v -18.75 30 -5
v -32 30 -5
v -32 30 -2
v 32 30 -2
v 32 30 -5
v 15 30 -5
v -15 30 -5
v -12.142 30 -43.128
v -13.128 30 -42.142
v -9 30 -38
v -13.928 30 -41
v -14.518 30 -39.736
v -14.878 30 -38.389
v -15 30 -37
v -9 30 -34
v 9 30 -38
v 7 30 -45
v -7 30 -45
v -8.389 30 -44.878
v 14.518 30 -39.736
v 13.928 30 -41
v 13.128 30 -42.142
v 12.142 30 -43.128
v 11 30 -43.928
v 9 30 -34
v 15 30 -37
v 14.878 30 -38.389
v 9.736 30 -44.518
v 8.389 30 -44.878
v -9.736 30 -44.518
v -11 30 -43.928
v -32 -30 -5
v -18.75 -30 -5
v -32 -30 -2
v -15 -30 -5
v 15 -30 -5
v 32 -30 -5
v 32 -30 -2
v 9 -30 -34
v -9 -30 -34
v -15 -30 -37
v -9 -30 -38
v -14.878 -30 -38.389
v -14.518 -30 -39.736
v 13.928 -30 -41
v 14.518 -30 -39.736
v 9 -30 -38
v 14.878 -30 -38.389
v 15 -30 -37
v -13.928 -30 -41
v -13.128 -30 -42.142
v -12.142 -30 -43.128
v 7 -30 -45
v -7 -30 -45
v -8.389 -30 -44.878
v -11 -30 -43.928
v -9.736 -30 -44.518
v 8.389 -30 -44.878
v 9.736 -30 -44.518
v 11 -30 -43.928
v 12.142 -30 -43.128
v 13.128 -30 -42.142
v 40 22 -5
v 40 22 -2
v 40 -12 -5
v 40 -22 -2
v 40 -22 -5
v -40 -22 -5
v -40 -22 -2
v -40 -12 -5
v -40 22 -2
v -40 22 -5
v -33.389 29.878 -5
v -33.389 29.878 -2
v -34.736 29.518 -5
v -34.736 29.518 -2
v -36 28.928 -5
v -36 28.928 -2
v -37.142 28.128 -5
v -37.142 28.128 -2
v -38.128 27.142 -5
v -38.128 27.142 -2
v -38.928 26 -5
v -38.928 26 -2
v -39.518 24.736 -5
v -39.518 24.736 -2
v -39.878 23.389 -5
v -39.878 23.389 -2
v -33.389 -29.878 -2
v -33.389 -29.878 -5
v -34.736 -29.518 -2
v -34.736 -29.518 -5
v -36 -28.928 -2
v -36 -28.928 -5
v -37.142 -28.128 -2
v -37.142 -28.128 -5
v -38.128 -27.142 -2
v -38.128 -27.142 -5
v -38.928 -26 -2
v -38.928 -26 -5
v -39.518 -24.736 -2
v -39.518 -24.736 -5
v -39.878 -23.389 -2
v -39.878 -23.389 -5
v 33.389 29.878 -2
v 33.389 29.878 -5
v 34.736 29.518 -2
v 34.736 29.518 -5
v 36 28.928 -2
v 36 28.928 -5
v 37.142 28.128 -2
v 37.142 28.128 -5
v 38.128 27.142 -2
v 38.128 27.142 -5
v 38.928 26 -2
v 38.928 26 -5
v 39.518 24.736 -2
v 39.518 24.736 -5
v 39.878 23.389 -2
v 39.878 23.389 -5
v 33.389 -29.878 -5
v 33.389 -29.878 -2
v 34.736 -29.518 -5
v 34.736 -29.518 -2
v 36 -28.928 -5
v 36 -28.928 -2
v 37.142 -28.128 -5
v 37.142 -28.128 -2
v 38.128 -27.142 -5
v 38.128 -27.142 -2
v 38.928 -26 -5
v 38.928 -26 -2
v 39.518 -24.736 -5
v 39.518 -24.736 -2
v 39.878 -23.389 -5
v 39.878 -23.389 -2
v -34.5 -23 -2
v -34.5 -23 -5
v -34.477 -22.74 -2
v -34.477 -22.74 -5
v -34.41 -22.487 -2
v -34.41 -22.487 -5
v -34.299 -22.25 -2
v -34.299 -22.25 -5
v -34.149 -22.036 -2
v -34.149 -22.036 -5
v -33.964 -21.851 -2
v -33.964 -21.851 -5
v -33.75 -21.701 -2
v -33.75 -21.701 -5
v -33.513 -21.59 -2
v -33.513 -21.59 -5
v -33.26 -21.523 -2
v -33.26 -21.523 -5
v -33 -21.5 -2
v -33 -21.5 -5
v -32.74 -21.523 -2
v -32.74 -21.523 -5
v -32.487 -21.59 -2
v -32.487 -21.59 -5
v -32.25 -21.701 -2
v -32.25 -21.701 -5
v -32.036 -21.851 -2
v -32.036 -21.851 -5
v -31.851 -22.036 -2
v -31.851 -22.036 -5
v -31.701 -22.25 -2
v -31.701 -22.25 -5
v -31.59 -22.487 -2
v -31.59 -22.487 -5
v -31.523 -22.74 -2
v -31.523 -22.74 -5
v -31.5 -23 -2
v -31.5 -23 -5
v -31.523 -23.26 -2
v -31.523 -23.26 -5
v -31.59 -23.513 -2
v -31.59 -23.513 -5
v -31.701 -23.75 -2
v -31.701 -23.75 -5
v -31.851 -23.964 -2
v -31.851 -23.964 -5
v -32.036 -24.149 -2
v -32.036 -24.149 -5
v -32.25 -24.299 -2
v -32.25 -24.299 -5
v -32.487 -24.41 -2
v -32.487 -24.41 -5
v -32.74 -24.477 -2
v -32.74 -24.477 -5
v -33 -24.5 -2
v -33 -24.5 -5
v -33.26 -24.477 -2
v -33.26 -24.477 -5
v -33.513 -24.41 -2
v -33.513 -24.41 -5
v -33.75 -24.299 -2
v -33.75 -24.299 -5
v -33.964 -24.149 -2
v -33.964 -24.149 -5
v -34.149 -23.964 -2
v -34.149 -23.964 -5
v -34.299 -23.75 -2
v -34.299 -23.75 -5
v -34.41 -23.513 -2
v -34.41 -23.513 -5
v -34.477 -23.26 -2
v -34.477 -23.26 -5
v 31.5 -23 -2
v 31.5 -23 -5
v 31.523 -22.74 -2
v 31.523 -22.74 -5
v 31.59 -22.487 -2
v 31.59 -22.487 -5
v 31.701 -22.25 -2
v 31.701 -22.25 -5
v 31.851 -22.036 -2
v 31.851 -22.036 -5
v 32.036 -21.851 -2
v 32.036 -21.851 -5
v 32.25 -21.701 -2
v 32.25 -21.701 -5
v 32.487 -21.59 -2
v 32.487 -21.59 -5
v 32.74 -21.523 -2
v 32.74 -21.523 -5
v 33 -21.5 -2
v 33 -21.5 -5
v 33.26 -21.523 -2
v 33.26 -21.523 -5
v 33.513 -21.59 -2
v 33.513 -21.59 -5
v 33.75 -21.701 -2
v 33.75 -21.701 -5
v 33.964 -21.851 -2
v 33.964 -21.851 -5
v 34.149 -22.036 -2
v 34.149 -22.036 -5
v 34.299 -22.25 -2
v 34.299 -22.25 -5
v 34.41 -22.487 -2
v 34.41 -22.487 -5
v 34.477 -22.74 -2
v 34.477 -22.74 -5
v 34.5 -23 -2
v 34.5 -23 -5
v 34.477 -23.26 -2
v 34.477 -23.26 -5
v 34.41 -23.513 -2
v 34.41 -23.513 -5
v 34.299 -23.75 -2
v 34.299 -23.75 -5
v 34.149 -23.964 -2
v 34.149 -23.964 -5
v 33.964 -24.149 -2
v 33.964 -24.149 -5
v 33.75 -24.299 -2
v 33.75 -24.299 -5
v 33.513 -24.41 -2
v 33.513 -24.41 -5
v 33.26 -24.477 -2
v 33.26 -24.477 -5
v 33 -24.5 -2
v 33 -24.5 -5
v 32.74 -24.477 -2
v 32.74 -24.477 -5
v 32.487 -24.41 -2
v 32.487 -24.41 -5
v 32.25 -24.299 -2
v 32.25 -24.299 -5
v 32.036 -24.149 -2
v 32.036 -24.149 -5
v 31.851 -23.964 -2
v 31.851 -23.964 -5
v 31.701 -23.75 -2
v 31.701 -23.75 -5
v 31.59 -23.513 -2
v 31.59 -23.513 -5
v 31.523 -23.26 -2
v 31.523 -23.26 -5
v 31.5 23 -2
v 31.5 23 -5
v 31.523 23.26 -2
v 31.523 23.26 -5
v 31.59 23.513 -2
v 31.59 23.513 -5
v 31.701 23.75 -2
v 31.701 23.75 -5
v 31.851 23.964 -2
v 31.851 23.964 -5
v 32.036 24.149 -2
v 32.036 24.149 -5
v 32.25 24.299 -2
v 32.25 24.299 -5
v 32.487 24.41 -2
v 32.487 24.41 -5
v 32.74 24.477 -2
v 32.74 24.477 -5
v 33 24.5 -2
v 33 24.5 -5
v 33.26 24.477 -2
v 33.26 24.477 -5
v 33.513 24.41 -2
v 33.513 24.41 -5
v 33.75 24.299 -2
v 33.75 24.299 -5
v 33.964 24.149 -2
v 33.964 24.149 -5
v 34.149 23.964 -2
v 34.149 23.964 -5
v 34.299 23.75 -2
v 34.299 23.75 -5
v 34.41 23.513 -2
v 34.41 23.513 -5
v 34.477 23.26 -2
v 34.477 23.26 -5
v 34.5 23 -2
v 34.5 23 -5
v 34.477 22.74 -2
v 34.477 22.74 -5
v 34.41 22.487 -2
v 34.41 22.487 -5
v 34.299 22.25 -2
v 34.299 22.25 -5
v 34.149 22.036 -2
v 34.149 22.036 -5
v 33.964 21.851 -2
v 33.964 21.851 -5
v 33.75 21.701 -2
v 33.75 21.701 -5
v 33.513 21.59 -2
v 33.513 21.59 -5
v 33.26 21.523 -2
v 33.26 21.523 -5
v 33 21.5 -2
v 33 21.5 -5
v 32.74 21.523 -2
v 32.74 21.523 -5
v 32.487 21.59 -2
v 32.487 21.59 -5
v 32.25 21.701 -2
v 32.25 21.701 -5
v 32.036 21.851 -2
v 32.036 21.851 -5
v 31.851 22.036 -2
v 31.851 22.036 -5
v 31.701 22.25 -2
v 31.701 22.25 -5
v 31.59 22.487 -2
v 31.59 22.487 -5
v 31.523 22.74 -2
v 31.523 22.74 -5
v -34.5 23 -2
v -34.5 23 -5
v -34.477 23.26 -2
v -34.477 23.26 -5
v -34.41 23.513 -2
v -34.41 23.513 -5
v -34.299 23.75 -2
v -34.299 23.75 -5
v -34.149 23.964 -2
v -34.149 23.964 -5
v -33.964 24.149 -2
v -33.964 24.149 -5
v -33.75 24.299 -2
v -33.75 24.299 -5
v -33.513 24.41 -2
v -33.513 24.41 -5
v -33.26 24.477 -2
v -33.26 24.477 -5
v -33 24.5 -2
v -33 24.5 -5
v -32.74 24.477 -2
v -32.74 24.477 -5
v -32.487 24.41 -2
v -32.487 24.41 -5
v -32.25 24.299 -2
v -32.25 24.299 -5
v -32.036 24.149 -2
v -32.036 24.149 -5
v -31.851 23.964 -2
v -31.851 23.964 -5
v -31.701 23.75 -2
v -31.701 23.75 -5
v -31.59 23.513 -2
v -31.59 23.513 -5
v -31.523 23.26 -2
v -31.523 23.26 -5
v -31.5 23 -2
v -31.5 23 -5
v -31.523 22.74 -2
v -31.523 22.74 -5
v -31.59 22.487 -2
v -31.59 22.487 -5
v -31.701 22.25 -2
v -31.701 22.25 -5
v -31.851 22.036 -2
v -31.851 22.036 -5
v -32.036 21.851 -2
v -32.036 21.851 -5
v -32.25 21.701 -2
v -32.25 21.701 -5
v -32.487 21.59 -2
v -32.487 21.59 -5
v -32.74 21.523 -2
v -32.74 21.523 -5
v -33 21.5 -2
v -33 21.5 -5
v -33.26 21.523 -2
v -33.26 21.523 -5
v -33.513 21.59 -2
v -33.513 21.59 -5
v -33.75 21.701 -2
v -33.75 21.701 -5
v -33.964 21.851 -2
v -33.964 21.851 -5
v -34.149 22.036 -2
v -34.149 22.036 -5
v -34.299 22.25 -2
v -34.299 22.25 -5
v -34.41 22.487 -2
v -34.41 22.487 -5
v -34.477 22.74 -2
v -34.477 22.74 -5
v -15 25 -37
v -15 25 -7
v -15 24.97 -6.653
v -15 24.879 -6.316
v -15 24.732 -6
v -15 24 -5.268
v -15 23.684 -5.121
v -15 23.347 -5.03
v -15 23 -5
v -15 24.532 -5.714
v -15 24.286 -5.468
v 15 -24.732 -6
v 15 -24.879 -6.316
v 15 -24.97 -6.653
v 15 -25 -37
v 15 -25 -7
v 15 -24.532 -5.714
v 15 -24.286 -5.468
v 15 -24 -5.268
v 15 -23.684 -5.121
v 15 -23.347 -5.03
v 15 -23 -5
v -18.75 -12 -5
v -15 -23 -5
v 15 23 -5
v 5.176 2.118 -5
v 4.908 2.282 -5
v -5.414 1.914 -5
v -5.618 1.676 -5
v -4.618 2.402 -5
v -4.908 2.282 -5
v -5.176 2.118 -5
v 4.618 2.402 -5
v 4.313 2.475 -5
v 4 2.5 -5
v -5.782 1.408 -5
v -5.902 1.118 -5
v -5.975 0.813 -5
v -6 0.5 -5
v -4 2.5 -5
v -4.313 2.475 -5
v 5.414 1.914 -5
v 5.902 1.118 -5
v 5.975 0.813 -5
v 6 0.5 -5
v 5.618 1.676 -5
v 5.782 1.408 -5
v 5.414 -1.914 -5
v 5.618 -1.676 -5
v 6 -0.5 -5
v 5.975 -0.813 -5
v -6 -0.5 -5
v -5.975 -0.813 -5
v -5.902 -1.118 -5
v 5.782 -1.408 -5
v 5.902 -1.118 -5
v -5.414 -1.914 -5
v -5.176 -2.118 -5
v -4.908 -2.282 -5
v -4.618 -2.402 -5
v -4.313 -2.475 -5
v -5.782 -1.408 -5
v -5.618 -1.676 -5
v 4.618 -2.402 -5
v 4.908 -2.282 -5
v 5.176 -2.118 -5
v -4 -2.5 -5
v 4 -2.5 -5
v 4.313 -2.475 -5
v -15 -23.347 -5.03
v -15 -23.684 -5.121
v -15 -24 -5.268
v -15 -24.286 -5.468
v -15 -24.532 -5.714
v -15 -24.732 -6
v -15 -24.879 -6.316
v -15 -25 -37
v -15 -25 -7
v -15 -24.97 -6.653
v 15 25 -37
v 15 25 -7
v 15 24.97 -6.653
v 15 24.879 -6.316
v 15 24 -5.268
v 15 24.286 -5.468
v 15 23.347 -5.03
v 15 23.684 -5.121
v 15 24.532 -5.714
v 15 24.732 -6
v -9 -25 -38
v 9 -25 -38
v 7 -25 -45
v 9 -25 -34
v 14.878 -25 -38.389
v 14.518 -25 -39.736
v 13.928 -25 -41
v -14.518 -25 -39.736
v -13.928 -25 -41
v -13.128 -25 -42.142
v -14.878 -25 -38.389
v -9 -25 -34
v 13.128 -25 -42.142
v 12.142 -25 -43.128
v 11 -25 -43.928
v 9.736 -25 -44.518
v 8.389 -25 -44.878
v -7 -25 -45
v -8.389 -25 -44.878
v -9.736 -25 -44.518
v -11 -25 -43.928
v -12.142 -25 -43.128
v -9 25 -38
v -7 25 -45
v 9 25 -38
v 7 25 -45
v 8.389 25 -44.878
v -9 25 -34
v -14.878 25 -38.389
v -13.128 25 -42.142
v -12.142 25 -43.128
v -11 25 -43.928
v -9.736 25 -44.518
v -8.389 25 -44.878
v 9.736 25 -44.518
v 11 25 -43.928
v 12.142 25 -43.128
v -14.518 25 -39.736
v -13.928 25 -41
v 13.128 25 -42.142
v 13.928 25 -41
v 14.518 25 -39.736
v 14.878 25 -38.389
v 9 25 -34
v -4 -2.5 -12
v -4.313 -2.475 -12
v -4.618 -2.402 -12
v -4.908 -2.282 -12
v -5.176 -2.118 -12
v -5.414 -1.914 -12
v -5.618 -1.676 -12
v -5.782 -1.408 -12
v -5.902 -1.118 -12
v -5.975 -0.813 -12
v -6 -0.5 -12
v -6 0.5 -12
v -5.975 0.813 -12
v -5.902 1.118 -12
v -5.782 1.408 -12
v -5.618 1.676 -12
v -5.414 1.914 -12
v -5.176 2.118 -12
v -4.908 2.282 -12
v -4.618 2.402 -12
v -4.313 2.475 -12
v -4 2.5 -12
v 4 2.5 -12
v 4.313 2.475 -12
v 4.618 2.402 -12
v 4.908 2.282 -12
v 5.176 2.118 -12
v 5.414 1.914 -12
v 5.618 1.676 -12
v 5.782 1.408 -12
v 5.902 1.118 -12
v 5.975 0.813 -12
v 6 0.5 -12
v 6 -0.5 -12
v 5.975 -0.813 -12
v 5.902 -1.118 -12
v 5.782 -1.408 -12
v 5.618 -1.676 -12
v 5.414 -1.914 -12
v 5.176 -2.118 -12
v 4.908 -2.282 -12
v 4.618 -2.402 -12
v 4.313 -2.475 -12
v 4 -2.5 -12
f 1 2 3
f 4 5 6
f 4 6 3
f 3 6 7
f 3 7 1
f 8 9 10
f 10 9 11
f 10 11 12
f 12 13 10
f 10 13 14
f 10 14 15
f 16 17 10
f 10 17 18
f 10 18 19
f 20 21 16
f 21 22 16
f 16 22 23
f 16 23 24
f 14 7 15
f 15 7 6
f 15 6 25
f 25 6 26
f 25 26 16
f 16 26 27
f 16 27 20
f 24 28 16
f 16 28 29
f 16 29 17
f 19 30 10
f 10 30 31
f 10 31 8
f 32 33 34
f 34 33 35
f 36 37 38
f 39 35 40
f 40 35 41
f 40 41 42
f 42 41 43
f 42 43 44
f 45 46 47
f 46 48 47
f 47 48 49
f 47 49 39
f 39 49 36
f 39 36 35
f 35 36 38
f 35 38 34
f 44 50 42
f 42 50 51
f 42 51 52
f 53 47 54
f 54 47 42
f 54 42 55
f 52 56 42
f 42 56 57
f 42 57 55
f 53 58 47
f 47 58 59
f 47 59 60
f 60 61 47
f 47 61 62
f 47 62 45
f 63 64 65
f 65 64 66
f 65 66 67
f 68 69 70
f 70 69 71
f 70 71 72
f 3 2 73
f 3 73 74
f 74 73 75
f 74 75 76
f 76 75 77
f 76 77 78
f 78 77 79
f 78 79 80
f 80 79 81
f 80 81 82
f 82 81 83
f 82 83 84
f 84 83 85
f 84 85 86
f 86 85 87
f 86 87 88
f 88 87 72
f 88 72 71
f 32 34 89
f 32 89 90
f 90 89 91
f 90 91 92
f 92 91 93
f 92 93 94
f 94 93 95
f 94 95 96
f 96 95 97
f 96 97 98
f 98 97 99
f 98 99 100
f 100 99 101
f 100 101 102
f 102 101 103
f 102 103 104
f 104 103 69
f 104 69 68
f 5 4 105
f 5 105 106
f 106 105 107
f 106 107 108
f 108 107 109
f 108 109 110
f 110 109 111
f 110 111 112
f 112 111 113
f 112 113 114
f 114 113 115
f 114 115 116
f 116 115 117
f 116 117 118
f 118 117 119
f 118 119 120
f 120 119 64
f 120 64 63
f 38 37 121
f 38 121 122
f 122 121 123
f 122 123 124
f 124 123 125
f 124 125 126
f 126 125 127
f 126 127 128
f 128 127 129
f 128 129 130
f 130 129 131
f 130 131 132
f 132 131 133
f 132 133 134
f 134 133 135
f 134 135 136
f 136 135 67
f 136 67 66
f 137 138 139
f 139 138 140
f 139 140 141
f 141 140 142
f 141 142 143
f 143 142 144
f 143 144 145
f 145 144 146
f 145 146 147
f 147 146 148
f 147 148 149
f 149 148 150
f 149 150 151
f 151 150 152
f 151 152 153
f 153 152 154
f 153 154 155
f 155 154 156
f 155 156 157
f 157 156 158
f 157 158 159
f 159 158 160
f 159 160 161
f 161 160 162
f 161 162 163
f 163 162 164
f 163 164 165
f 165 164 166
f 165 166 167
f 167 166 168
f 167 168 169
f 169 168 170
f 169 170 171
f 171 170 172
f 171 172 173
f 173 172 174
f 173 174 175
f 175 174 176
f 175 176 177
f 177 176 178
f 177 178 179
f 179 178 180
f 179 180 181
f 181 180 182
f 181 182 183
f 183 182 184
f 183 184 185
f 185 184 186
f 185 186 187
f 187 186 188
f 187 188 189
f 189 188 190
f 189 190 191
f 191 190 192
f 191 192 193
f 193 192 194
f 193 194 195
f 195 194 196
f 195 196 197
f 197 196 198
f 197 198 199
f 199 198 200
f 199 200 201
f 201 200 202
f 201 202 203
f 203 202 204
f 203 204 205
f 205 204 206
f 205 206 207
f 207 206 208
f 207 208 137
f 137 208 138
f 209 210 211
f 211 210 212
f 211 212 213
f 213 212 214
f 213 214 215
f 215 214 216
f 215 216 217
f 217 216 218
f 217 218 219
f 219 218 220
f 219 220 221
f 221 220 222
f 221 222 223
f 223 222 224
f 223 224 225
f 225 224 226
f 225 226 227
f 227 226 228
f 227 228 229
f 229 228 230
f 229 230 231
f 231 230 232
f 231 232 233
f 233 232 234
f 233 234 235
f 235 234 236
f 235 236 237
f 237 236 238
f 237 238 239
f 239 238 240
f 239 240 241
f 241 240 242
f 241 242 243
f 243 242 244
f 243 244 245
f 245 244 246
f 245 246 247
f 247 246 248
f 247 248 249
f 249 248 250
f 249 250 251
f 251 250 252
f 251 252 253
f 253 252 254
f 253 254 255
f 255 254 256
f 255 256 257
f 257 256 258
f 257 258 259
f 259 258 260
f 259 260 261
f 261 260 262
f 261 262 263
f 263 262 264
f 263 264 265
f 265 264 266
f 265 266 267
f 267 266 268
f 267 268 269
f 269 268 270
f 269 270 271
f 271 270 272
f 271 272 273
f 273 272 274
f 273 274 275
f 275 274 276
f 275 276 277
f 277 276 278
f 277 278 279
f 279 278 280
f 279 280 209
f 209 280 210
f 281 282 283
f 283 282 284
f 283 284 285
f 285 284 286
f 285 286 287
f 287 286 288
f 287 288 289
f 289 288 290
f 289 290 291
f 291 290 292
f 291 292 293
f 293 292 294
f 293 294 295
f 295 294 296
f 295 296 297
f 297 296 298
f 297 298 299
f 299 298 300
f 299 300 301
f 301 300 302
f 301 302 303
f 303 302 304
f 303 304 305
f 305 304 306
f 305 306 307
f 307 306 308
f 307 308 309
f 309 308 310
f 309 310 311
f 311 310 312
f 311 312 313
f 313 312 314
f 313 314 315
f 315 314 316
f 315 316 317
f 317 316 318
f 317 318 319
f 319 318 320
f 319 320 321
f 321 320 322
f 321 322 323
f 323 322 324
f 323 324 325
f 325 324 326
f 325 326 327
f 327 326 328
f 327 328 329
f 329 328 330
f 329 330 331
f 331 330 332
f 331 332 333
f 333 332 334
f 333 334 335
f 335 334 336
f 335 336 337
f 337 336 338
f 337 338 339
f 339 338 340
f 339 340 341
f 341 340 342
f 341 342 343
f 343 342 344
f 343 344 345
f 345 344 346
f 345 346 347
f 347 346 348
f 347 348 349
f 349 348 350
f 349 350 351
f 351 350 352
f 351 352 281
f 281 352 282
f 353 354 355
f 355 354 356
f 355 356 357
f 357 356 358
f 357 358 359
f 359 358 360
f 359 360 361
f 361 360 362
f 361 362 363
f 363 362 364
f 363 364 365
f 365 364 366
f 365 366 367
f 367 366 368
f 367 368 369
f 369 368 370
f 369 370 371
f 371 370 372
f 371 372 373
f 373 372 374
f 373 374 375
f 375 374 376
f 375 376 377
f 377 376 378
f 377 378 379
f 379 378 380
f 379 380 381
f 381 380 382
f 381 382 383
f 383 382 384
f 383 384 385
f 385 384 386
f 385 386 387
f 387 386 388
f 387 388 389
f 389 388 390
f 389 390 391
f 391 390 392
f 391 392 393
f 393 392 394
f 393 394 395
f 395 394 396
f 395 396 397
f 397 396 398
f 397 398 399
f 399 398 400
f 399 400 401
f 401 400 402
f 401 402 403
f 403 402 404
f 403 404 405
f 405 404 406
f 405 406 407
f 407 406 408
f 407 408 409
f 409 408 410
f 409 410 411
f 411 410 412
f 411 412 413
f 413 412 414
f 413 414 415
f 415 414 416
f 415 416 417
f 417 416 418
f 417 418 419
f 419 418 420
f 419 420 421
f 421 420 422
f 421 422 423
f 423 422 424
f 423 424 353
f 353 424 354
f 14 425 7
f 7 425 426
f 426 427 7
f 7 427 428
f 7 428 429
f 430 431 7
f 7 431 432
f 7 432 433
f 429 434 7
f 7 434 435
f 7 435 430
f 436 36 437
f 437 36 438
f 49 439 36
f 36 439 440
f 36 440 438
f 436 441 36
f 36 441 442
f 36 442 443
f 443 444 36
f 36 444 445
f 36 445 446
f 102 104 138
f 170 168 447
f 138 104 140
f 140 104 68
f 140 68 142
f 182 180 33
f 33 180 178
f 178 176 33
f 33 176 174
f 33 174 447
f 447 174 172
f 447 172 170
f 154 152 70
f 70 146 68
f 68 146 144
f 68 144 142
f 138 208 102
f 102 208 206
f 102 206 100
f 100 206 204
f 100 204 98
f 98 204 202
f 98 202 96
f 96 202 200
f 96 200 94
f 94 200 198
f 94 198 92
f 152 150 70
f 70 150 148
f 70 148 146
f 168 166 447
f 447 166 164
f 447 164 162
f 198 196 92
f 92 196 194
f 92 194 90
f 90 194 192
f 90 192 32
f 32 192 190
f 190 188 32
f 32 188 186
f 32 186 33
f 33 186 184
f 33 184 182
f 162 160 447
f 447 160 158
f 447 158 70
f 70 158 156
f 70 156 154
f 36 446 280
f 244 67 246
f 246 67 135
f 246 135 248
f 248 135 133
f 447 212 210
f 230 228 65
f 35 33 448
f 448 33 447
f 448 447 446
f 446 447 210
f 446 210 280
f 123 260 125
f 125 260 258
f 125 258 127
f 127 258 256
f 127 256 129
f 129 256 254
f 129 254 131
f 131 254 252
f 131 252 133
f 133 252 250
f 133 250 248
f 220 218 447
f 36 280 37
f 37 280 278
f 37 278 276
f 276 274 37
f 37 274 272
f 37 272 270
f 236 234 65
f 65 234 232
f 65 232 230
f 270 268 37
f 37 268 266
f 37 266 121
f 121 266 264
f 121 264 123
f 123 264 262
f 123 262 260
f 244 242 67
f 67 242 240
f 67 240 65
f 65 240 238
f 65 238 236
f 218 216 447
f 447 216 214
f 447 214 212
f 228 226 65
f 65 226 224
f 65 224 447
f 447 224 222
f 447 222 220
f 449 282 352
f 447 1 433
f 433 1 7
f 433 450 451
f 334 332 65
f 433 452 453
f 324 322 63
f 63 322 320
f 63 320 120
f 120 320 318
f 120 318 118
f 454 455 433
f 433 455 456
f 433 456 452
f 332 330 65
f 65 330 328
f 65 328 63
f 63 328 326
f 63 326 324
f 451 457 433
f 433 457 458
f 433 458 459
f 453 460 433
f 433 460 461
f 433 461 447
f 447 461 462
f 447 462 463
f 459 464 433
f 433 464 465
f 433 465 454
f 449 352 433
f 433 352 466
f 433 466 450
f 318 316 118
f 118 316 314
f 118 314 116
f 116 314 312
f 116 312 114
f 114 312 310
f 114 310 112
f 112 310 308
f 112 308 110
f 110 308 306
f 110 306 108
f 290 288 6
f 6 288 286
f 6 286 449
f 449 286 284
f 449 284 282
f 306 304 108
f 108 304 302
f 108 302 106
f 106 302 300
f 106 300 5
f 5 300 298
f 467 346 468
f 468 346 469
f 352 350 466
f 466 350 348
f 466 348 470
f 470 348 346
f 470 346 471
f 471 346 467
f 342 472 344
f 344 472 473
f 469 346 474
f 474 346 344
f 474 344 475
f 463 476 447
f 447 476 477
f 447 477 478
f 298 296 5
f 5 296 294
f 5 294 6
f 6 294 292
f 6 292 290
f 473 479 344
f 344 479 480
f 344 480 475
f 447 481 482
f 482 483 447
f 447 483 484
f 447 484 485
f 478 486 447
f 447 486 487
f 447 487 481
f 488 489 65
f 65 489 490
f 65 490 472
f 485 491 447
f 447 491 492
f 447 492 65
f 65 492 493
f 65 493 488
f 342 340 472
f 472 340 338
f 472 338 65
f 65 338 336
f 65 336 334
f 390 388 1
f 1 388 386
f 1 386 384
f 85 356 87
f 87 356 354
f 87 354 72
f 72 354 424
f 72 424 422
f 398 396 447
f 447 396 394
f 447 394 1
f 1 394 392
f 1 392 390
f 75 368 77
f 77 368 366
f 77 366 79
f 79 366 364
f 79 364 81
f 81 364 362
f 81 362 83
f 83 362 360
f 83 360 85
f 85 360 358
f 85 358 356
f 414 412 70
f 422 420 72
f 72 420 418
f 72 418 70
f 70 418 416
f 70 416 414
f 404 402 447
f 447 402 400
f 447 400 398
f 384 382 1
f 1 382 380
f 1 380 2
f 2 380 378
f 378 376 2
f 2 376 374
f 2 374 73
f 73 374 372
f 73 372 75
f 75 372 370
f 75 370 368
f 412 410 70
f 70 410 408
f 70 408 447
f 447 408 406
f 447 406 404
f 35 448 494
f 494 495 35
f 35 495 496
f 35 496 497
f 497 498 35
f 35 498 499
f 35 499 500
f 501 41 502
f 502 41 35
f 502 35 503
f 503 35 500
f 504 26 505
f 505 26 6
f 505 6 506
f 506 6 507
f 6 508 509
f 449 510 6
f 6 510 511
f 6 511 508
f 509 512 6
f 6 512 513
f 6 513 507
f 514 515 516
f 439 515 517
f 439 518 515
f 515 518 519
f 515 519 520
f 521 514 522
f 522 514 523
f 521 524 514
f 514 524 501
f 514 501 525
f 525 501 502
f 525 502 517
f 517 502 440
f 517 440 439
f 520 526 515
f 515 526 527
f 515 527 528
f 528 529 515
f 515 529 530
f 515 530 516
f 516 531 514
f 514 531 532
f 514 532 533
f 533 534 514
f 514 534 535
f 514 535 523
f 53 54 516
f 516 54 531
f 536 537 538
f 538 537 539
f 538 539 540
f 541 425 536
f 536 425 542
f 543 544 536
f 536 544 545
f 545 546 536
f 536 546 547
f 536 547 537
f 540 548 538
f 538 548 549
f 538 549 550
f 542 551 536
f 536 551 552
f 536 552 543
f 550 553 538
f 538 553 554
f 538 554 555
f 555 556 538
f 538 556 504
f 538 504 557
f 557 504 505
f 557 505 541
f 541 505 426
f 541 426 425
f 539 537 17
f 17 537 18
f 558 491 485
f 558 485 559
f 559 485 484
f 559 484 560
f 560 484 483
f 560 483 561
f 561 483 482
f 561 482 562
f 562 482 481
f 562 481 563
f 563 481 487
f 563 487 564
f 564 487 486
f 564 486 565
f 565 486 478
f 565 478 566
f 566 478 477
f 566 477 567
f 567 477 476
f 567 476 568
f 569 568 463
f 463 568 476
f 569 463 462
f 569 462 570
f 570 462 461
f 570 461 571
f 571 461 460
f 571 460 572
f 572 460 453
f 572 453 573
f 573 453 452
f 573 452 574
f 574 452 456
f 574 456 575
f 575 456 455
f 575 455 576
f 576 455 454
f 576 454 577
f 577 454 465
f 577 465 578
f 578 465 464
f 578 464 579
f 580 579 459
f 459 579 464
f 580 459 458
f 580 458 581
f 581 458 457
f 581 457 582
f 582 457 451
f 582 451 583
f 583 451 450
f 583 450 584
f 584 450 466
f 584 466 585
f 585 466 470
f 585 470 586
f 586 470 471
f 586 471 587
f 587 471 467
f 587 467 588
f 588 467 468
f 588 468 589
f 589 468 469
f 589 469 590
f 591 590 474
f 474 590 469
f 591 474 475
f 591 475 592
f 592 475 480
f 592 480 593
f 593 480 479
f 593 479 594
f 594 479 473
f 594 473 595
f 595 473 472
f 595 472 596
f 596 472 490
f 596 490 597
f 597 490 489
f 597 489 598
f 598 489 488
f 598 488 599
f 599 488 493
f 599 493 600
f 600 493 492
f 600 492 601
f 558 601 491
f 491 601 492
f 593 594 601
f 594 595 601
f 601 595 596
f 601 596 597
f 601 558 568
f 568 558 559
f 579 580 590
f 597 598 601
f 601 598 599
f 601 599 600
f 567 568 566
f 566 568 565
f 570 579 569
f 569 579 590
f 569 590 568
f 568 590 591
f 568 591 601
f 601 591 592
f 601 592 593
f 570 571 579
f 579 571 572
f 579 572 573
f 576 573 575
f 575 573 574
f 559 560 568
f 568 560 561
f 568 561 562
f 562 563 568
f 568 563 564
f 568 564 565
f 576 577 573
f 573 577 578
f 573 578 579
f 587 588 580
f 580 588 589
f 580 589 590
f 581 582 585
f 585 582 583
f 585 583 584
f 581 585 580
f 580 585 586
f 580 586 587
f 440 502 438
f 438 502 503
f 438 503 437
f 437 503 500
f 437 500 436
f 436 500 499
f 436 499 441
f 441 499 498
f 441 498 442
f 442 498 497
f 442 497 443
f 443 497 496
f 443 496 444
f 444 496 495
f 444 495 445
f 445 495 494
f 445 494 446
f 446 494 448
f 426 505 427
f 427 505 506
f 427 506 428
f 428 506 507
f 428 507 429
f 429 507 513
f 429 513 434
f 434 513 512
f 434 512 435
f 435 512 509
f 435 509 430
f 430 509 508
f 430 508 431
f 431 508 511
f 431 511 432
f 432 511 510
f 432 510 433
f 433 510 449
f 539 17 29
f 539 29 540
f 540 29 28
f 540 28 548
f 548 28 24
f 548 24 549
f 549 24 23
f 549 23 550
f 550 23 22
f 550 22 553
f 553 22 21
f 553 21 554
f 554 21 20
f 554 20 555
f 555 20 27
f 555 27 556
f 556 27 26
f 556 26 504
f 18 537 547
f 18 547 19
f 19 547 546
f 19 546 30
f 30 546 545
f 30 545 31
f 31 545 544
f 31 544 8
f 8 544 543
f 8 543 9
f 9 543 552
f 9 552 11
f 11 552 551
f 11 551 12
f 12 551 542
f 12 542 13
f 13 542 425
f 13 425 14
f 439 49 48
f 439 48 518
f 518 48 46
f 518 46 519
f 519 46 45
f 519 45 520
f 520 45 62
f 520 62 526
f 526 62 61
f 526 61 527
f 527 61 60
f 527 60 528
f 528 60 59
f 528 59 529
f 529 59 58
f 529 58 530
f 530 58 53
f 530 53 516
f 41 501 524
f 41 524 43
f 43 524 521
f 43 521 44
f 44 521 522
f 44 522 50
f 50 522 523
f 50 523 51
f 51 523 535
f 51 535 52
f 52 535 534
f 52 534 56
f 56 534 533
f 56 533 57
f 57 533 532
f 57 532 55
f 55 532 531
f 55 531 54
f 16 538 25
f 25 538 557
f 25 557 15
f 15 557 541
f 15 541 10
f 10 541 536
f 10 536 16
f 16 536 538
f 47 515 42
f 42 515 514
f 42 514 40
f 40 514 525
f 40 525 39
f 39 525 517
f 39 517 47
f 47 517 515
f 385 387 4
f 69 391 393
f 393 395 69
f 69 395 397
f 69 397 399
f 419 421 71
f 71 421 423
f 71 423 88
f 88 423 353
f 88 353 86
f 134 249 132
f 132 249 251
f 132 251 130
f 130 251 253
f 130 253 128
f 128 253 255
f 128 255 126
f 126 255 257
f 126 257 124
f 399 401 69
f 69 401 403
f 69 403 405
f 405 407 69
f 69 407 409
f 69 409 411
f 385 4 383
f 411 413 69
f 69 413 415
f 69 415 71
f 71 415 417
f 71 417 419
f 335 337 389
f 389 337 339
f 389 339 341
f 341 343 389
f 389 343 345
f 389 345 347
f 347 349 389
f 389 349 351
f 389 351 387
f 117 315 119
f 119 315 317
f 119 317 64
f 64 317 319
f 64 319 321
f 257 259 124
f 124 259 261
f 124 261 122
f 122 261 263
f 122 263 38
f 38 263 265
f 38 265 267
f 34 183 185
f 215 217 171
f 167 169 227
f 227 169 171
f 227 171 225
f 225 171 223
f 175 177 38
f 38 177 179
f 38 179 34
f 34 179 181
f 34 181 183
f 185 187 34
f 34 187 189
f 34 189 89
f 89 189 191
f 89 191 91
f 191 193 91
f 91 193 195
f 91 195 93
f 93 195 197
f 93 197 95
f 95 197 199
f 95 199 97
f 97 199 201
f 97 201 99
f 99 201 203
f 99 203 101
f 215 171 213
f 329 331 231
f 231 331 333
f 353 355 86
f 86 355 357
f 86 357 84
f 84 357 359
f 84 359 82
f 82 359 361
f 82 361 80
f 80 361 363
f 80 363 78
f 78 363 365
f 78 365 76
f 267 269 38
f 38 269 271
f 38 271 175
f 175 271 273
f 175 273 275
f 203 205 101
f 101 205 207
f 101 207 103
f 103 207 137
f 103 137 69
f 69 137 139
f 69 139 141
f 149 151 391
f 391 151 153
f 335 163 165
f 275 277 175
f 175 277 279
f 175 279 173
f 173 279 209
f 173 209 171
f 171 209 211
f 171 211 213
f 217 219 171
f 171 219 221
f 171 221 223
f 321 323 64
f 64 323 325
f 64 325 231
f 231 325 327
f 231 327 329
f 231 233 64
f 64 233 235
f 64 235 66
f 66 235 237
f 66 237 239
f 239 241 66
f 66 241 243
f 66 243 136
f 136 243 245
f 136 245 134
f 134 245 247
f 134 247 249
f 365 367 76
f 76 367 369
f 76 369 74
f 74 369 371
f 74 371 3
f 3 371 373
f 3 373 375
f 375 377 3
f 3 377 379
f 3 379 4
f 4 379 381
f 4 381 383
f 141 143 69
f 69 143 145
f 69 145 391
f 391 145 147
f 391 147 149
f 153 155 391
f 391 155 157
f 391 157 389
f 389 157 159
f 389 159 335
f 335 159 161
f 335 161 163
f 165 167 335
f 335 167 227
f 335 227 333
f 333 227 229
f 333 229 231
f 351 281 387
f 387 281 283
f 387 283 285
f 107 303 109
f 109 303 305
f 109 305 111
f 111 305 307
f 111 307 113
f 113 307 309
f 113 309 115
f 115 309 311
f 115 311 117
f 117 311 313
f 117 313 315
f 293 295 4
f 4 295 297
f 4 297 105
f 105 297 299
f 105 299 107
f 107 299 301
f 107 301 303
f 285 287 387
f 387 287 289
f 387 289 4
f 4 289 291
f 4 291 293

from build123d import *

# Parameters (mm, degrees)
SKETCH1_W           = 30
SKETCH1_H           = 60
BOSS_EXTRUDE1_DEPTH = 5
SKETCH2_W           = 30
SKETCH2_H           = 5
BOSS_EXTRUDE2_DEPTH = 40
BOSS_EXTRUDE3_DEPTH = 7
FILLET1_R           = 2
SKETCH4_W           = 5
SKETCH4_H           = 60
BOSS_EXTRUDE4_DEPTH = 25
SKETCH5_W           = 5
SKETCH5_H           = 60
BOSS_EXTRUDE5_DEPTH = 25
FILLET2_R           = 8
SKETCH6_R           = 1.5
CUT_EXTRUDE1_DEPTH  = 5
FILLET3_R           = 8
CUT_EXTRUDE2_REACH  = 87
SKETCH7_W           = 18
SKETCH7_H           = 4
CUT_EXTRUDE4_DEPTH  = 2


with BuildPart() as part:
    # Sketch1 → Boss-Extrude1 (new body)
    with BuildSketch(Plane.XY):
        Rectangle(SKETCH1_W, SKETCH1_H)
    extrude(amount=-BOSS_EXTRUDE1_DEPTH)

    # Sketch2 → Boss-Extrude2 (add)
    with BuildSketch(Plane(origin=(0, 0, -5), x_dir=(-1, 0, 0), z_dir=(0, 0, -1))):
        with Locations((0, -27.5)):
            Rectangle(SKETCH2_W, SKETCH2_H)
        with Locations((0, 27.5)):
            Rectangle(SKETCH2_W, SKETCH2_H)
    extrude(amount=BOSS_EXTRUDE2_DEPTH)

    # Sketch3 → Boss-Extrude3 (add)
    with BuildSketch(Plane(origin=(0, 0, -5), x_dir=(-1, 0, 0), z_dir=(0, 0, -1))):
        with BuildLine():
            Line((4, -2.5), (-4, -2.5))
            ThreePointArc((-4, -2.5), (-5.414213562, -1.914213562), (-6, -0.5))
            Line((-6, -0.5), (-6, 0.5))
            ThreePointArc((-6, 0.5), (-5.414213562, 1.914213562), (-4, 2.5))
            Line((-4, 2.5), (4, 2.5))
            ThreePointArc((4, 2.5), (5.414213562, 1.914213562), (6, 0.5))
            Line((6, 0.5), (6, -0.5))
            ThreePointArc((6, -0.5), (5.414213562, -1.914213562), (4, -2.5))
        make_face()
    extrude(amount=BOSS_EXTRUDE3_DEPTH)

    # Fillet1
    fillet1_edges = [part.edges().sort_by_distance(p)[0] for p in [
        (0, -25, -5),
        (0, 25, -5),
    ]]
    fillet(fillet1_edges, radius=FILLET1_R)

    # Sketch4 → Boss-Extrude4 (add)
    with BuildSketch(Plane(origin=(15, 0, 0), x_dir=(0, 0, -1), z_dir=(1, 0, 0))):
        with Locations((2.5, 0)):
            Rectangle(SKETCH4_W, SKETCH4_H)
    extrude(amount=BOSS_EXTRUDE4_DEPTH)

    # Sketch5 → Boss-Extrude5 (add)
    with BuildSketch(Plane.ZY.offset(15)):
        with Locations((-2.5, 0)):
            Rectangle(SKETCH5_W, SKETCH5_H)
    extrude(amount=BOSS_EXTRUDE5_DEPTH)

    # Fillet2
    fillet2_edges = [part.edges().sort_by_distance(p)[0] for p in [
        (40, 30, -2.5),
        (40, -30, -2.5),
        (-40, -30, -2.5),
        (-40, 30, -2.5),
    ]]
    fillet(fillet2_edges, radius=FILLET2_R)

    # Sketch6 → Cut-Extrude1 (cut)
    with BuildSketch(Plane(origin=(0, 0, -5), x_dir=(-1, 0, 0), z_dir=(0, 0, -1))):
        with Locations((33, -23)):
            Circle(SKETCH6_R)
        with Locations(Location((-33, -23, 0), (0, 0, 180))):
            Circle(SKETCH6_R)
        with Locations((-33, 23)):
            Circle(SKETCH6_R)
        with Locations(Location((33, 23, 0), (0, 0, 180))):
            Circle(SKETCH6_R)
    extrude(amount=-CUT_EXTRUDE1_DEPTH, mode=Mode.SUBTRACT)

    # Fillet3
    fillet3_edges = [part.edges().sort_by_distance(p)[0] for p in [
        (-15, -27.5, -45),
        (15, -27.5, -45),
        (-15, 27.5, -45),
        (15, 27.5, -45),
    ]]
    fillet(fillet3_edges, radius=FILLET3_R)

    # Cut-Extrude2: up to this face of the body (flat: up to its plane)
    cut_extrude2_end = Plane(part.part.faces().sort_by_distance((0, -30, -19.840780346))[0])
    # Sketch7 → Cut-Extrude2 (cut, up to the picked face)
    with BuildSketch(Plane(origin=(0, 30, 0), x_dir=(1, 0, 0), z_dir=(0, 1, 0)), mode=Mode.PRIVATE) as cut_extrude2_sk1:
        with Locations((0, 36)):
            Rectangle(SKETCH7_W, SKETCH7_H)
    cut_extrude2_tool1 = split(extrude(cut_extrude2_sk1.sketch, amount=-CUT_EXTRUDE2_REACH, mode=Mode.PRIVATE), bisect_by=cut_extrude2_end, keep=Keep.BOTH, mode=Mode.PRIVATE)
    add(cut_extrude2_tool1.solids().sort_by(Axis((0, 30, -36), (0, -1, 0)))[0], mode=Mode.SUBTRACT)

    # Sketch10 → Cut-Extrude4 (cut)
    with BuildSketch(Plane.XY):
        with BuildLine():
            Line((32, 30), (-32, 30))
            ThreePointArc((-32, 30), (-37.656854249, 27.656854249), (-40, 22))
            Line((-40, 22), (-40, -22))
            ThreePointArc((-40, -22), (-37.656854249, -27.656854249), (-32, -30))
            Line((-32, -30), (32, -30))
            ThreePointArc((32, -30), (37.656854249, -27.656854249), (40, -22))
            Line((40, -22), (40, 22))
            ThreePointArc((40, 22), (37.656854249, 27.656854249), (32, 30))
        make_face()
    extrude(amount=-CUT_EXTRUDE4_DEPTH, mode=Mode.SUBTRACT)


solid = part.part
